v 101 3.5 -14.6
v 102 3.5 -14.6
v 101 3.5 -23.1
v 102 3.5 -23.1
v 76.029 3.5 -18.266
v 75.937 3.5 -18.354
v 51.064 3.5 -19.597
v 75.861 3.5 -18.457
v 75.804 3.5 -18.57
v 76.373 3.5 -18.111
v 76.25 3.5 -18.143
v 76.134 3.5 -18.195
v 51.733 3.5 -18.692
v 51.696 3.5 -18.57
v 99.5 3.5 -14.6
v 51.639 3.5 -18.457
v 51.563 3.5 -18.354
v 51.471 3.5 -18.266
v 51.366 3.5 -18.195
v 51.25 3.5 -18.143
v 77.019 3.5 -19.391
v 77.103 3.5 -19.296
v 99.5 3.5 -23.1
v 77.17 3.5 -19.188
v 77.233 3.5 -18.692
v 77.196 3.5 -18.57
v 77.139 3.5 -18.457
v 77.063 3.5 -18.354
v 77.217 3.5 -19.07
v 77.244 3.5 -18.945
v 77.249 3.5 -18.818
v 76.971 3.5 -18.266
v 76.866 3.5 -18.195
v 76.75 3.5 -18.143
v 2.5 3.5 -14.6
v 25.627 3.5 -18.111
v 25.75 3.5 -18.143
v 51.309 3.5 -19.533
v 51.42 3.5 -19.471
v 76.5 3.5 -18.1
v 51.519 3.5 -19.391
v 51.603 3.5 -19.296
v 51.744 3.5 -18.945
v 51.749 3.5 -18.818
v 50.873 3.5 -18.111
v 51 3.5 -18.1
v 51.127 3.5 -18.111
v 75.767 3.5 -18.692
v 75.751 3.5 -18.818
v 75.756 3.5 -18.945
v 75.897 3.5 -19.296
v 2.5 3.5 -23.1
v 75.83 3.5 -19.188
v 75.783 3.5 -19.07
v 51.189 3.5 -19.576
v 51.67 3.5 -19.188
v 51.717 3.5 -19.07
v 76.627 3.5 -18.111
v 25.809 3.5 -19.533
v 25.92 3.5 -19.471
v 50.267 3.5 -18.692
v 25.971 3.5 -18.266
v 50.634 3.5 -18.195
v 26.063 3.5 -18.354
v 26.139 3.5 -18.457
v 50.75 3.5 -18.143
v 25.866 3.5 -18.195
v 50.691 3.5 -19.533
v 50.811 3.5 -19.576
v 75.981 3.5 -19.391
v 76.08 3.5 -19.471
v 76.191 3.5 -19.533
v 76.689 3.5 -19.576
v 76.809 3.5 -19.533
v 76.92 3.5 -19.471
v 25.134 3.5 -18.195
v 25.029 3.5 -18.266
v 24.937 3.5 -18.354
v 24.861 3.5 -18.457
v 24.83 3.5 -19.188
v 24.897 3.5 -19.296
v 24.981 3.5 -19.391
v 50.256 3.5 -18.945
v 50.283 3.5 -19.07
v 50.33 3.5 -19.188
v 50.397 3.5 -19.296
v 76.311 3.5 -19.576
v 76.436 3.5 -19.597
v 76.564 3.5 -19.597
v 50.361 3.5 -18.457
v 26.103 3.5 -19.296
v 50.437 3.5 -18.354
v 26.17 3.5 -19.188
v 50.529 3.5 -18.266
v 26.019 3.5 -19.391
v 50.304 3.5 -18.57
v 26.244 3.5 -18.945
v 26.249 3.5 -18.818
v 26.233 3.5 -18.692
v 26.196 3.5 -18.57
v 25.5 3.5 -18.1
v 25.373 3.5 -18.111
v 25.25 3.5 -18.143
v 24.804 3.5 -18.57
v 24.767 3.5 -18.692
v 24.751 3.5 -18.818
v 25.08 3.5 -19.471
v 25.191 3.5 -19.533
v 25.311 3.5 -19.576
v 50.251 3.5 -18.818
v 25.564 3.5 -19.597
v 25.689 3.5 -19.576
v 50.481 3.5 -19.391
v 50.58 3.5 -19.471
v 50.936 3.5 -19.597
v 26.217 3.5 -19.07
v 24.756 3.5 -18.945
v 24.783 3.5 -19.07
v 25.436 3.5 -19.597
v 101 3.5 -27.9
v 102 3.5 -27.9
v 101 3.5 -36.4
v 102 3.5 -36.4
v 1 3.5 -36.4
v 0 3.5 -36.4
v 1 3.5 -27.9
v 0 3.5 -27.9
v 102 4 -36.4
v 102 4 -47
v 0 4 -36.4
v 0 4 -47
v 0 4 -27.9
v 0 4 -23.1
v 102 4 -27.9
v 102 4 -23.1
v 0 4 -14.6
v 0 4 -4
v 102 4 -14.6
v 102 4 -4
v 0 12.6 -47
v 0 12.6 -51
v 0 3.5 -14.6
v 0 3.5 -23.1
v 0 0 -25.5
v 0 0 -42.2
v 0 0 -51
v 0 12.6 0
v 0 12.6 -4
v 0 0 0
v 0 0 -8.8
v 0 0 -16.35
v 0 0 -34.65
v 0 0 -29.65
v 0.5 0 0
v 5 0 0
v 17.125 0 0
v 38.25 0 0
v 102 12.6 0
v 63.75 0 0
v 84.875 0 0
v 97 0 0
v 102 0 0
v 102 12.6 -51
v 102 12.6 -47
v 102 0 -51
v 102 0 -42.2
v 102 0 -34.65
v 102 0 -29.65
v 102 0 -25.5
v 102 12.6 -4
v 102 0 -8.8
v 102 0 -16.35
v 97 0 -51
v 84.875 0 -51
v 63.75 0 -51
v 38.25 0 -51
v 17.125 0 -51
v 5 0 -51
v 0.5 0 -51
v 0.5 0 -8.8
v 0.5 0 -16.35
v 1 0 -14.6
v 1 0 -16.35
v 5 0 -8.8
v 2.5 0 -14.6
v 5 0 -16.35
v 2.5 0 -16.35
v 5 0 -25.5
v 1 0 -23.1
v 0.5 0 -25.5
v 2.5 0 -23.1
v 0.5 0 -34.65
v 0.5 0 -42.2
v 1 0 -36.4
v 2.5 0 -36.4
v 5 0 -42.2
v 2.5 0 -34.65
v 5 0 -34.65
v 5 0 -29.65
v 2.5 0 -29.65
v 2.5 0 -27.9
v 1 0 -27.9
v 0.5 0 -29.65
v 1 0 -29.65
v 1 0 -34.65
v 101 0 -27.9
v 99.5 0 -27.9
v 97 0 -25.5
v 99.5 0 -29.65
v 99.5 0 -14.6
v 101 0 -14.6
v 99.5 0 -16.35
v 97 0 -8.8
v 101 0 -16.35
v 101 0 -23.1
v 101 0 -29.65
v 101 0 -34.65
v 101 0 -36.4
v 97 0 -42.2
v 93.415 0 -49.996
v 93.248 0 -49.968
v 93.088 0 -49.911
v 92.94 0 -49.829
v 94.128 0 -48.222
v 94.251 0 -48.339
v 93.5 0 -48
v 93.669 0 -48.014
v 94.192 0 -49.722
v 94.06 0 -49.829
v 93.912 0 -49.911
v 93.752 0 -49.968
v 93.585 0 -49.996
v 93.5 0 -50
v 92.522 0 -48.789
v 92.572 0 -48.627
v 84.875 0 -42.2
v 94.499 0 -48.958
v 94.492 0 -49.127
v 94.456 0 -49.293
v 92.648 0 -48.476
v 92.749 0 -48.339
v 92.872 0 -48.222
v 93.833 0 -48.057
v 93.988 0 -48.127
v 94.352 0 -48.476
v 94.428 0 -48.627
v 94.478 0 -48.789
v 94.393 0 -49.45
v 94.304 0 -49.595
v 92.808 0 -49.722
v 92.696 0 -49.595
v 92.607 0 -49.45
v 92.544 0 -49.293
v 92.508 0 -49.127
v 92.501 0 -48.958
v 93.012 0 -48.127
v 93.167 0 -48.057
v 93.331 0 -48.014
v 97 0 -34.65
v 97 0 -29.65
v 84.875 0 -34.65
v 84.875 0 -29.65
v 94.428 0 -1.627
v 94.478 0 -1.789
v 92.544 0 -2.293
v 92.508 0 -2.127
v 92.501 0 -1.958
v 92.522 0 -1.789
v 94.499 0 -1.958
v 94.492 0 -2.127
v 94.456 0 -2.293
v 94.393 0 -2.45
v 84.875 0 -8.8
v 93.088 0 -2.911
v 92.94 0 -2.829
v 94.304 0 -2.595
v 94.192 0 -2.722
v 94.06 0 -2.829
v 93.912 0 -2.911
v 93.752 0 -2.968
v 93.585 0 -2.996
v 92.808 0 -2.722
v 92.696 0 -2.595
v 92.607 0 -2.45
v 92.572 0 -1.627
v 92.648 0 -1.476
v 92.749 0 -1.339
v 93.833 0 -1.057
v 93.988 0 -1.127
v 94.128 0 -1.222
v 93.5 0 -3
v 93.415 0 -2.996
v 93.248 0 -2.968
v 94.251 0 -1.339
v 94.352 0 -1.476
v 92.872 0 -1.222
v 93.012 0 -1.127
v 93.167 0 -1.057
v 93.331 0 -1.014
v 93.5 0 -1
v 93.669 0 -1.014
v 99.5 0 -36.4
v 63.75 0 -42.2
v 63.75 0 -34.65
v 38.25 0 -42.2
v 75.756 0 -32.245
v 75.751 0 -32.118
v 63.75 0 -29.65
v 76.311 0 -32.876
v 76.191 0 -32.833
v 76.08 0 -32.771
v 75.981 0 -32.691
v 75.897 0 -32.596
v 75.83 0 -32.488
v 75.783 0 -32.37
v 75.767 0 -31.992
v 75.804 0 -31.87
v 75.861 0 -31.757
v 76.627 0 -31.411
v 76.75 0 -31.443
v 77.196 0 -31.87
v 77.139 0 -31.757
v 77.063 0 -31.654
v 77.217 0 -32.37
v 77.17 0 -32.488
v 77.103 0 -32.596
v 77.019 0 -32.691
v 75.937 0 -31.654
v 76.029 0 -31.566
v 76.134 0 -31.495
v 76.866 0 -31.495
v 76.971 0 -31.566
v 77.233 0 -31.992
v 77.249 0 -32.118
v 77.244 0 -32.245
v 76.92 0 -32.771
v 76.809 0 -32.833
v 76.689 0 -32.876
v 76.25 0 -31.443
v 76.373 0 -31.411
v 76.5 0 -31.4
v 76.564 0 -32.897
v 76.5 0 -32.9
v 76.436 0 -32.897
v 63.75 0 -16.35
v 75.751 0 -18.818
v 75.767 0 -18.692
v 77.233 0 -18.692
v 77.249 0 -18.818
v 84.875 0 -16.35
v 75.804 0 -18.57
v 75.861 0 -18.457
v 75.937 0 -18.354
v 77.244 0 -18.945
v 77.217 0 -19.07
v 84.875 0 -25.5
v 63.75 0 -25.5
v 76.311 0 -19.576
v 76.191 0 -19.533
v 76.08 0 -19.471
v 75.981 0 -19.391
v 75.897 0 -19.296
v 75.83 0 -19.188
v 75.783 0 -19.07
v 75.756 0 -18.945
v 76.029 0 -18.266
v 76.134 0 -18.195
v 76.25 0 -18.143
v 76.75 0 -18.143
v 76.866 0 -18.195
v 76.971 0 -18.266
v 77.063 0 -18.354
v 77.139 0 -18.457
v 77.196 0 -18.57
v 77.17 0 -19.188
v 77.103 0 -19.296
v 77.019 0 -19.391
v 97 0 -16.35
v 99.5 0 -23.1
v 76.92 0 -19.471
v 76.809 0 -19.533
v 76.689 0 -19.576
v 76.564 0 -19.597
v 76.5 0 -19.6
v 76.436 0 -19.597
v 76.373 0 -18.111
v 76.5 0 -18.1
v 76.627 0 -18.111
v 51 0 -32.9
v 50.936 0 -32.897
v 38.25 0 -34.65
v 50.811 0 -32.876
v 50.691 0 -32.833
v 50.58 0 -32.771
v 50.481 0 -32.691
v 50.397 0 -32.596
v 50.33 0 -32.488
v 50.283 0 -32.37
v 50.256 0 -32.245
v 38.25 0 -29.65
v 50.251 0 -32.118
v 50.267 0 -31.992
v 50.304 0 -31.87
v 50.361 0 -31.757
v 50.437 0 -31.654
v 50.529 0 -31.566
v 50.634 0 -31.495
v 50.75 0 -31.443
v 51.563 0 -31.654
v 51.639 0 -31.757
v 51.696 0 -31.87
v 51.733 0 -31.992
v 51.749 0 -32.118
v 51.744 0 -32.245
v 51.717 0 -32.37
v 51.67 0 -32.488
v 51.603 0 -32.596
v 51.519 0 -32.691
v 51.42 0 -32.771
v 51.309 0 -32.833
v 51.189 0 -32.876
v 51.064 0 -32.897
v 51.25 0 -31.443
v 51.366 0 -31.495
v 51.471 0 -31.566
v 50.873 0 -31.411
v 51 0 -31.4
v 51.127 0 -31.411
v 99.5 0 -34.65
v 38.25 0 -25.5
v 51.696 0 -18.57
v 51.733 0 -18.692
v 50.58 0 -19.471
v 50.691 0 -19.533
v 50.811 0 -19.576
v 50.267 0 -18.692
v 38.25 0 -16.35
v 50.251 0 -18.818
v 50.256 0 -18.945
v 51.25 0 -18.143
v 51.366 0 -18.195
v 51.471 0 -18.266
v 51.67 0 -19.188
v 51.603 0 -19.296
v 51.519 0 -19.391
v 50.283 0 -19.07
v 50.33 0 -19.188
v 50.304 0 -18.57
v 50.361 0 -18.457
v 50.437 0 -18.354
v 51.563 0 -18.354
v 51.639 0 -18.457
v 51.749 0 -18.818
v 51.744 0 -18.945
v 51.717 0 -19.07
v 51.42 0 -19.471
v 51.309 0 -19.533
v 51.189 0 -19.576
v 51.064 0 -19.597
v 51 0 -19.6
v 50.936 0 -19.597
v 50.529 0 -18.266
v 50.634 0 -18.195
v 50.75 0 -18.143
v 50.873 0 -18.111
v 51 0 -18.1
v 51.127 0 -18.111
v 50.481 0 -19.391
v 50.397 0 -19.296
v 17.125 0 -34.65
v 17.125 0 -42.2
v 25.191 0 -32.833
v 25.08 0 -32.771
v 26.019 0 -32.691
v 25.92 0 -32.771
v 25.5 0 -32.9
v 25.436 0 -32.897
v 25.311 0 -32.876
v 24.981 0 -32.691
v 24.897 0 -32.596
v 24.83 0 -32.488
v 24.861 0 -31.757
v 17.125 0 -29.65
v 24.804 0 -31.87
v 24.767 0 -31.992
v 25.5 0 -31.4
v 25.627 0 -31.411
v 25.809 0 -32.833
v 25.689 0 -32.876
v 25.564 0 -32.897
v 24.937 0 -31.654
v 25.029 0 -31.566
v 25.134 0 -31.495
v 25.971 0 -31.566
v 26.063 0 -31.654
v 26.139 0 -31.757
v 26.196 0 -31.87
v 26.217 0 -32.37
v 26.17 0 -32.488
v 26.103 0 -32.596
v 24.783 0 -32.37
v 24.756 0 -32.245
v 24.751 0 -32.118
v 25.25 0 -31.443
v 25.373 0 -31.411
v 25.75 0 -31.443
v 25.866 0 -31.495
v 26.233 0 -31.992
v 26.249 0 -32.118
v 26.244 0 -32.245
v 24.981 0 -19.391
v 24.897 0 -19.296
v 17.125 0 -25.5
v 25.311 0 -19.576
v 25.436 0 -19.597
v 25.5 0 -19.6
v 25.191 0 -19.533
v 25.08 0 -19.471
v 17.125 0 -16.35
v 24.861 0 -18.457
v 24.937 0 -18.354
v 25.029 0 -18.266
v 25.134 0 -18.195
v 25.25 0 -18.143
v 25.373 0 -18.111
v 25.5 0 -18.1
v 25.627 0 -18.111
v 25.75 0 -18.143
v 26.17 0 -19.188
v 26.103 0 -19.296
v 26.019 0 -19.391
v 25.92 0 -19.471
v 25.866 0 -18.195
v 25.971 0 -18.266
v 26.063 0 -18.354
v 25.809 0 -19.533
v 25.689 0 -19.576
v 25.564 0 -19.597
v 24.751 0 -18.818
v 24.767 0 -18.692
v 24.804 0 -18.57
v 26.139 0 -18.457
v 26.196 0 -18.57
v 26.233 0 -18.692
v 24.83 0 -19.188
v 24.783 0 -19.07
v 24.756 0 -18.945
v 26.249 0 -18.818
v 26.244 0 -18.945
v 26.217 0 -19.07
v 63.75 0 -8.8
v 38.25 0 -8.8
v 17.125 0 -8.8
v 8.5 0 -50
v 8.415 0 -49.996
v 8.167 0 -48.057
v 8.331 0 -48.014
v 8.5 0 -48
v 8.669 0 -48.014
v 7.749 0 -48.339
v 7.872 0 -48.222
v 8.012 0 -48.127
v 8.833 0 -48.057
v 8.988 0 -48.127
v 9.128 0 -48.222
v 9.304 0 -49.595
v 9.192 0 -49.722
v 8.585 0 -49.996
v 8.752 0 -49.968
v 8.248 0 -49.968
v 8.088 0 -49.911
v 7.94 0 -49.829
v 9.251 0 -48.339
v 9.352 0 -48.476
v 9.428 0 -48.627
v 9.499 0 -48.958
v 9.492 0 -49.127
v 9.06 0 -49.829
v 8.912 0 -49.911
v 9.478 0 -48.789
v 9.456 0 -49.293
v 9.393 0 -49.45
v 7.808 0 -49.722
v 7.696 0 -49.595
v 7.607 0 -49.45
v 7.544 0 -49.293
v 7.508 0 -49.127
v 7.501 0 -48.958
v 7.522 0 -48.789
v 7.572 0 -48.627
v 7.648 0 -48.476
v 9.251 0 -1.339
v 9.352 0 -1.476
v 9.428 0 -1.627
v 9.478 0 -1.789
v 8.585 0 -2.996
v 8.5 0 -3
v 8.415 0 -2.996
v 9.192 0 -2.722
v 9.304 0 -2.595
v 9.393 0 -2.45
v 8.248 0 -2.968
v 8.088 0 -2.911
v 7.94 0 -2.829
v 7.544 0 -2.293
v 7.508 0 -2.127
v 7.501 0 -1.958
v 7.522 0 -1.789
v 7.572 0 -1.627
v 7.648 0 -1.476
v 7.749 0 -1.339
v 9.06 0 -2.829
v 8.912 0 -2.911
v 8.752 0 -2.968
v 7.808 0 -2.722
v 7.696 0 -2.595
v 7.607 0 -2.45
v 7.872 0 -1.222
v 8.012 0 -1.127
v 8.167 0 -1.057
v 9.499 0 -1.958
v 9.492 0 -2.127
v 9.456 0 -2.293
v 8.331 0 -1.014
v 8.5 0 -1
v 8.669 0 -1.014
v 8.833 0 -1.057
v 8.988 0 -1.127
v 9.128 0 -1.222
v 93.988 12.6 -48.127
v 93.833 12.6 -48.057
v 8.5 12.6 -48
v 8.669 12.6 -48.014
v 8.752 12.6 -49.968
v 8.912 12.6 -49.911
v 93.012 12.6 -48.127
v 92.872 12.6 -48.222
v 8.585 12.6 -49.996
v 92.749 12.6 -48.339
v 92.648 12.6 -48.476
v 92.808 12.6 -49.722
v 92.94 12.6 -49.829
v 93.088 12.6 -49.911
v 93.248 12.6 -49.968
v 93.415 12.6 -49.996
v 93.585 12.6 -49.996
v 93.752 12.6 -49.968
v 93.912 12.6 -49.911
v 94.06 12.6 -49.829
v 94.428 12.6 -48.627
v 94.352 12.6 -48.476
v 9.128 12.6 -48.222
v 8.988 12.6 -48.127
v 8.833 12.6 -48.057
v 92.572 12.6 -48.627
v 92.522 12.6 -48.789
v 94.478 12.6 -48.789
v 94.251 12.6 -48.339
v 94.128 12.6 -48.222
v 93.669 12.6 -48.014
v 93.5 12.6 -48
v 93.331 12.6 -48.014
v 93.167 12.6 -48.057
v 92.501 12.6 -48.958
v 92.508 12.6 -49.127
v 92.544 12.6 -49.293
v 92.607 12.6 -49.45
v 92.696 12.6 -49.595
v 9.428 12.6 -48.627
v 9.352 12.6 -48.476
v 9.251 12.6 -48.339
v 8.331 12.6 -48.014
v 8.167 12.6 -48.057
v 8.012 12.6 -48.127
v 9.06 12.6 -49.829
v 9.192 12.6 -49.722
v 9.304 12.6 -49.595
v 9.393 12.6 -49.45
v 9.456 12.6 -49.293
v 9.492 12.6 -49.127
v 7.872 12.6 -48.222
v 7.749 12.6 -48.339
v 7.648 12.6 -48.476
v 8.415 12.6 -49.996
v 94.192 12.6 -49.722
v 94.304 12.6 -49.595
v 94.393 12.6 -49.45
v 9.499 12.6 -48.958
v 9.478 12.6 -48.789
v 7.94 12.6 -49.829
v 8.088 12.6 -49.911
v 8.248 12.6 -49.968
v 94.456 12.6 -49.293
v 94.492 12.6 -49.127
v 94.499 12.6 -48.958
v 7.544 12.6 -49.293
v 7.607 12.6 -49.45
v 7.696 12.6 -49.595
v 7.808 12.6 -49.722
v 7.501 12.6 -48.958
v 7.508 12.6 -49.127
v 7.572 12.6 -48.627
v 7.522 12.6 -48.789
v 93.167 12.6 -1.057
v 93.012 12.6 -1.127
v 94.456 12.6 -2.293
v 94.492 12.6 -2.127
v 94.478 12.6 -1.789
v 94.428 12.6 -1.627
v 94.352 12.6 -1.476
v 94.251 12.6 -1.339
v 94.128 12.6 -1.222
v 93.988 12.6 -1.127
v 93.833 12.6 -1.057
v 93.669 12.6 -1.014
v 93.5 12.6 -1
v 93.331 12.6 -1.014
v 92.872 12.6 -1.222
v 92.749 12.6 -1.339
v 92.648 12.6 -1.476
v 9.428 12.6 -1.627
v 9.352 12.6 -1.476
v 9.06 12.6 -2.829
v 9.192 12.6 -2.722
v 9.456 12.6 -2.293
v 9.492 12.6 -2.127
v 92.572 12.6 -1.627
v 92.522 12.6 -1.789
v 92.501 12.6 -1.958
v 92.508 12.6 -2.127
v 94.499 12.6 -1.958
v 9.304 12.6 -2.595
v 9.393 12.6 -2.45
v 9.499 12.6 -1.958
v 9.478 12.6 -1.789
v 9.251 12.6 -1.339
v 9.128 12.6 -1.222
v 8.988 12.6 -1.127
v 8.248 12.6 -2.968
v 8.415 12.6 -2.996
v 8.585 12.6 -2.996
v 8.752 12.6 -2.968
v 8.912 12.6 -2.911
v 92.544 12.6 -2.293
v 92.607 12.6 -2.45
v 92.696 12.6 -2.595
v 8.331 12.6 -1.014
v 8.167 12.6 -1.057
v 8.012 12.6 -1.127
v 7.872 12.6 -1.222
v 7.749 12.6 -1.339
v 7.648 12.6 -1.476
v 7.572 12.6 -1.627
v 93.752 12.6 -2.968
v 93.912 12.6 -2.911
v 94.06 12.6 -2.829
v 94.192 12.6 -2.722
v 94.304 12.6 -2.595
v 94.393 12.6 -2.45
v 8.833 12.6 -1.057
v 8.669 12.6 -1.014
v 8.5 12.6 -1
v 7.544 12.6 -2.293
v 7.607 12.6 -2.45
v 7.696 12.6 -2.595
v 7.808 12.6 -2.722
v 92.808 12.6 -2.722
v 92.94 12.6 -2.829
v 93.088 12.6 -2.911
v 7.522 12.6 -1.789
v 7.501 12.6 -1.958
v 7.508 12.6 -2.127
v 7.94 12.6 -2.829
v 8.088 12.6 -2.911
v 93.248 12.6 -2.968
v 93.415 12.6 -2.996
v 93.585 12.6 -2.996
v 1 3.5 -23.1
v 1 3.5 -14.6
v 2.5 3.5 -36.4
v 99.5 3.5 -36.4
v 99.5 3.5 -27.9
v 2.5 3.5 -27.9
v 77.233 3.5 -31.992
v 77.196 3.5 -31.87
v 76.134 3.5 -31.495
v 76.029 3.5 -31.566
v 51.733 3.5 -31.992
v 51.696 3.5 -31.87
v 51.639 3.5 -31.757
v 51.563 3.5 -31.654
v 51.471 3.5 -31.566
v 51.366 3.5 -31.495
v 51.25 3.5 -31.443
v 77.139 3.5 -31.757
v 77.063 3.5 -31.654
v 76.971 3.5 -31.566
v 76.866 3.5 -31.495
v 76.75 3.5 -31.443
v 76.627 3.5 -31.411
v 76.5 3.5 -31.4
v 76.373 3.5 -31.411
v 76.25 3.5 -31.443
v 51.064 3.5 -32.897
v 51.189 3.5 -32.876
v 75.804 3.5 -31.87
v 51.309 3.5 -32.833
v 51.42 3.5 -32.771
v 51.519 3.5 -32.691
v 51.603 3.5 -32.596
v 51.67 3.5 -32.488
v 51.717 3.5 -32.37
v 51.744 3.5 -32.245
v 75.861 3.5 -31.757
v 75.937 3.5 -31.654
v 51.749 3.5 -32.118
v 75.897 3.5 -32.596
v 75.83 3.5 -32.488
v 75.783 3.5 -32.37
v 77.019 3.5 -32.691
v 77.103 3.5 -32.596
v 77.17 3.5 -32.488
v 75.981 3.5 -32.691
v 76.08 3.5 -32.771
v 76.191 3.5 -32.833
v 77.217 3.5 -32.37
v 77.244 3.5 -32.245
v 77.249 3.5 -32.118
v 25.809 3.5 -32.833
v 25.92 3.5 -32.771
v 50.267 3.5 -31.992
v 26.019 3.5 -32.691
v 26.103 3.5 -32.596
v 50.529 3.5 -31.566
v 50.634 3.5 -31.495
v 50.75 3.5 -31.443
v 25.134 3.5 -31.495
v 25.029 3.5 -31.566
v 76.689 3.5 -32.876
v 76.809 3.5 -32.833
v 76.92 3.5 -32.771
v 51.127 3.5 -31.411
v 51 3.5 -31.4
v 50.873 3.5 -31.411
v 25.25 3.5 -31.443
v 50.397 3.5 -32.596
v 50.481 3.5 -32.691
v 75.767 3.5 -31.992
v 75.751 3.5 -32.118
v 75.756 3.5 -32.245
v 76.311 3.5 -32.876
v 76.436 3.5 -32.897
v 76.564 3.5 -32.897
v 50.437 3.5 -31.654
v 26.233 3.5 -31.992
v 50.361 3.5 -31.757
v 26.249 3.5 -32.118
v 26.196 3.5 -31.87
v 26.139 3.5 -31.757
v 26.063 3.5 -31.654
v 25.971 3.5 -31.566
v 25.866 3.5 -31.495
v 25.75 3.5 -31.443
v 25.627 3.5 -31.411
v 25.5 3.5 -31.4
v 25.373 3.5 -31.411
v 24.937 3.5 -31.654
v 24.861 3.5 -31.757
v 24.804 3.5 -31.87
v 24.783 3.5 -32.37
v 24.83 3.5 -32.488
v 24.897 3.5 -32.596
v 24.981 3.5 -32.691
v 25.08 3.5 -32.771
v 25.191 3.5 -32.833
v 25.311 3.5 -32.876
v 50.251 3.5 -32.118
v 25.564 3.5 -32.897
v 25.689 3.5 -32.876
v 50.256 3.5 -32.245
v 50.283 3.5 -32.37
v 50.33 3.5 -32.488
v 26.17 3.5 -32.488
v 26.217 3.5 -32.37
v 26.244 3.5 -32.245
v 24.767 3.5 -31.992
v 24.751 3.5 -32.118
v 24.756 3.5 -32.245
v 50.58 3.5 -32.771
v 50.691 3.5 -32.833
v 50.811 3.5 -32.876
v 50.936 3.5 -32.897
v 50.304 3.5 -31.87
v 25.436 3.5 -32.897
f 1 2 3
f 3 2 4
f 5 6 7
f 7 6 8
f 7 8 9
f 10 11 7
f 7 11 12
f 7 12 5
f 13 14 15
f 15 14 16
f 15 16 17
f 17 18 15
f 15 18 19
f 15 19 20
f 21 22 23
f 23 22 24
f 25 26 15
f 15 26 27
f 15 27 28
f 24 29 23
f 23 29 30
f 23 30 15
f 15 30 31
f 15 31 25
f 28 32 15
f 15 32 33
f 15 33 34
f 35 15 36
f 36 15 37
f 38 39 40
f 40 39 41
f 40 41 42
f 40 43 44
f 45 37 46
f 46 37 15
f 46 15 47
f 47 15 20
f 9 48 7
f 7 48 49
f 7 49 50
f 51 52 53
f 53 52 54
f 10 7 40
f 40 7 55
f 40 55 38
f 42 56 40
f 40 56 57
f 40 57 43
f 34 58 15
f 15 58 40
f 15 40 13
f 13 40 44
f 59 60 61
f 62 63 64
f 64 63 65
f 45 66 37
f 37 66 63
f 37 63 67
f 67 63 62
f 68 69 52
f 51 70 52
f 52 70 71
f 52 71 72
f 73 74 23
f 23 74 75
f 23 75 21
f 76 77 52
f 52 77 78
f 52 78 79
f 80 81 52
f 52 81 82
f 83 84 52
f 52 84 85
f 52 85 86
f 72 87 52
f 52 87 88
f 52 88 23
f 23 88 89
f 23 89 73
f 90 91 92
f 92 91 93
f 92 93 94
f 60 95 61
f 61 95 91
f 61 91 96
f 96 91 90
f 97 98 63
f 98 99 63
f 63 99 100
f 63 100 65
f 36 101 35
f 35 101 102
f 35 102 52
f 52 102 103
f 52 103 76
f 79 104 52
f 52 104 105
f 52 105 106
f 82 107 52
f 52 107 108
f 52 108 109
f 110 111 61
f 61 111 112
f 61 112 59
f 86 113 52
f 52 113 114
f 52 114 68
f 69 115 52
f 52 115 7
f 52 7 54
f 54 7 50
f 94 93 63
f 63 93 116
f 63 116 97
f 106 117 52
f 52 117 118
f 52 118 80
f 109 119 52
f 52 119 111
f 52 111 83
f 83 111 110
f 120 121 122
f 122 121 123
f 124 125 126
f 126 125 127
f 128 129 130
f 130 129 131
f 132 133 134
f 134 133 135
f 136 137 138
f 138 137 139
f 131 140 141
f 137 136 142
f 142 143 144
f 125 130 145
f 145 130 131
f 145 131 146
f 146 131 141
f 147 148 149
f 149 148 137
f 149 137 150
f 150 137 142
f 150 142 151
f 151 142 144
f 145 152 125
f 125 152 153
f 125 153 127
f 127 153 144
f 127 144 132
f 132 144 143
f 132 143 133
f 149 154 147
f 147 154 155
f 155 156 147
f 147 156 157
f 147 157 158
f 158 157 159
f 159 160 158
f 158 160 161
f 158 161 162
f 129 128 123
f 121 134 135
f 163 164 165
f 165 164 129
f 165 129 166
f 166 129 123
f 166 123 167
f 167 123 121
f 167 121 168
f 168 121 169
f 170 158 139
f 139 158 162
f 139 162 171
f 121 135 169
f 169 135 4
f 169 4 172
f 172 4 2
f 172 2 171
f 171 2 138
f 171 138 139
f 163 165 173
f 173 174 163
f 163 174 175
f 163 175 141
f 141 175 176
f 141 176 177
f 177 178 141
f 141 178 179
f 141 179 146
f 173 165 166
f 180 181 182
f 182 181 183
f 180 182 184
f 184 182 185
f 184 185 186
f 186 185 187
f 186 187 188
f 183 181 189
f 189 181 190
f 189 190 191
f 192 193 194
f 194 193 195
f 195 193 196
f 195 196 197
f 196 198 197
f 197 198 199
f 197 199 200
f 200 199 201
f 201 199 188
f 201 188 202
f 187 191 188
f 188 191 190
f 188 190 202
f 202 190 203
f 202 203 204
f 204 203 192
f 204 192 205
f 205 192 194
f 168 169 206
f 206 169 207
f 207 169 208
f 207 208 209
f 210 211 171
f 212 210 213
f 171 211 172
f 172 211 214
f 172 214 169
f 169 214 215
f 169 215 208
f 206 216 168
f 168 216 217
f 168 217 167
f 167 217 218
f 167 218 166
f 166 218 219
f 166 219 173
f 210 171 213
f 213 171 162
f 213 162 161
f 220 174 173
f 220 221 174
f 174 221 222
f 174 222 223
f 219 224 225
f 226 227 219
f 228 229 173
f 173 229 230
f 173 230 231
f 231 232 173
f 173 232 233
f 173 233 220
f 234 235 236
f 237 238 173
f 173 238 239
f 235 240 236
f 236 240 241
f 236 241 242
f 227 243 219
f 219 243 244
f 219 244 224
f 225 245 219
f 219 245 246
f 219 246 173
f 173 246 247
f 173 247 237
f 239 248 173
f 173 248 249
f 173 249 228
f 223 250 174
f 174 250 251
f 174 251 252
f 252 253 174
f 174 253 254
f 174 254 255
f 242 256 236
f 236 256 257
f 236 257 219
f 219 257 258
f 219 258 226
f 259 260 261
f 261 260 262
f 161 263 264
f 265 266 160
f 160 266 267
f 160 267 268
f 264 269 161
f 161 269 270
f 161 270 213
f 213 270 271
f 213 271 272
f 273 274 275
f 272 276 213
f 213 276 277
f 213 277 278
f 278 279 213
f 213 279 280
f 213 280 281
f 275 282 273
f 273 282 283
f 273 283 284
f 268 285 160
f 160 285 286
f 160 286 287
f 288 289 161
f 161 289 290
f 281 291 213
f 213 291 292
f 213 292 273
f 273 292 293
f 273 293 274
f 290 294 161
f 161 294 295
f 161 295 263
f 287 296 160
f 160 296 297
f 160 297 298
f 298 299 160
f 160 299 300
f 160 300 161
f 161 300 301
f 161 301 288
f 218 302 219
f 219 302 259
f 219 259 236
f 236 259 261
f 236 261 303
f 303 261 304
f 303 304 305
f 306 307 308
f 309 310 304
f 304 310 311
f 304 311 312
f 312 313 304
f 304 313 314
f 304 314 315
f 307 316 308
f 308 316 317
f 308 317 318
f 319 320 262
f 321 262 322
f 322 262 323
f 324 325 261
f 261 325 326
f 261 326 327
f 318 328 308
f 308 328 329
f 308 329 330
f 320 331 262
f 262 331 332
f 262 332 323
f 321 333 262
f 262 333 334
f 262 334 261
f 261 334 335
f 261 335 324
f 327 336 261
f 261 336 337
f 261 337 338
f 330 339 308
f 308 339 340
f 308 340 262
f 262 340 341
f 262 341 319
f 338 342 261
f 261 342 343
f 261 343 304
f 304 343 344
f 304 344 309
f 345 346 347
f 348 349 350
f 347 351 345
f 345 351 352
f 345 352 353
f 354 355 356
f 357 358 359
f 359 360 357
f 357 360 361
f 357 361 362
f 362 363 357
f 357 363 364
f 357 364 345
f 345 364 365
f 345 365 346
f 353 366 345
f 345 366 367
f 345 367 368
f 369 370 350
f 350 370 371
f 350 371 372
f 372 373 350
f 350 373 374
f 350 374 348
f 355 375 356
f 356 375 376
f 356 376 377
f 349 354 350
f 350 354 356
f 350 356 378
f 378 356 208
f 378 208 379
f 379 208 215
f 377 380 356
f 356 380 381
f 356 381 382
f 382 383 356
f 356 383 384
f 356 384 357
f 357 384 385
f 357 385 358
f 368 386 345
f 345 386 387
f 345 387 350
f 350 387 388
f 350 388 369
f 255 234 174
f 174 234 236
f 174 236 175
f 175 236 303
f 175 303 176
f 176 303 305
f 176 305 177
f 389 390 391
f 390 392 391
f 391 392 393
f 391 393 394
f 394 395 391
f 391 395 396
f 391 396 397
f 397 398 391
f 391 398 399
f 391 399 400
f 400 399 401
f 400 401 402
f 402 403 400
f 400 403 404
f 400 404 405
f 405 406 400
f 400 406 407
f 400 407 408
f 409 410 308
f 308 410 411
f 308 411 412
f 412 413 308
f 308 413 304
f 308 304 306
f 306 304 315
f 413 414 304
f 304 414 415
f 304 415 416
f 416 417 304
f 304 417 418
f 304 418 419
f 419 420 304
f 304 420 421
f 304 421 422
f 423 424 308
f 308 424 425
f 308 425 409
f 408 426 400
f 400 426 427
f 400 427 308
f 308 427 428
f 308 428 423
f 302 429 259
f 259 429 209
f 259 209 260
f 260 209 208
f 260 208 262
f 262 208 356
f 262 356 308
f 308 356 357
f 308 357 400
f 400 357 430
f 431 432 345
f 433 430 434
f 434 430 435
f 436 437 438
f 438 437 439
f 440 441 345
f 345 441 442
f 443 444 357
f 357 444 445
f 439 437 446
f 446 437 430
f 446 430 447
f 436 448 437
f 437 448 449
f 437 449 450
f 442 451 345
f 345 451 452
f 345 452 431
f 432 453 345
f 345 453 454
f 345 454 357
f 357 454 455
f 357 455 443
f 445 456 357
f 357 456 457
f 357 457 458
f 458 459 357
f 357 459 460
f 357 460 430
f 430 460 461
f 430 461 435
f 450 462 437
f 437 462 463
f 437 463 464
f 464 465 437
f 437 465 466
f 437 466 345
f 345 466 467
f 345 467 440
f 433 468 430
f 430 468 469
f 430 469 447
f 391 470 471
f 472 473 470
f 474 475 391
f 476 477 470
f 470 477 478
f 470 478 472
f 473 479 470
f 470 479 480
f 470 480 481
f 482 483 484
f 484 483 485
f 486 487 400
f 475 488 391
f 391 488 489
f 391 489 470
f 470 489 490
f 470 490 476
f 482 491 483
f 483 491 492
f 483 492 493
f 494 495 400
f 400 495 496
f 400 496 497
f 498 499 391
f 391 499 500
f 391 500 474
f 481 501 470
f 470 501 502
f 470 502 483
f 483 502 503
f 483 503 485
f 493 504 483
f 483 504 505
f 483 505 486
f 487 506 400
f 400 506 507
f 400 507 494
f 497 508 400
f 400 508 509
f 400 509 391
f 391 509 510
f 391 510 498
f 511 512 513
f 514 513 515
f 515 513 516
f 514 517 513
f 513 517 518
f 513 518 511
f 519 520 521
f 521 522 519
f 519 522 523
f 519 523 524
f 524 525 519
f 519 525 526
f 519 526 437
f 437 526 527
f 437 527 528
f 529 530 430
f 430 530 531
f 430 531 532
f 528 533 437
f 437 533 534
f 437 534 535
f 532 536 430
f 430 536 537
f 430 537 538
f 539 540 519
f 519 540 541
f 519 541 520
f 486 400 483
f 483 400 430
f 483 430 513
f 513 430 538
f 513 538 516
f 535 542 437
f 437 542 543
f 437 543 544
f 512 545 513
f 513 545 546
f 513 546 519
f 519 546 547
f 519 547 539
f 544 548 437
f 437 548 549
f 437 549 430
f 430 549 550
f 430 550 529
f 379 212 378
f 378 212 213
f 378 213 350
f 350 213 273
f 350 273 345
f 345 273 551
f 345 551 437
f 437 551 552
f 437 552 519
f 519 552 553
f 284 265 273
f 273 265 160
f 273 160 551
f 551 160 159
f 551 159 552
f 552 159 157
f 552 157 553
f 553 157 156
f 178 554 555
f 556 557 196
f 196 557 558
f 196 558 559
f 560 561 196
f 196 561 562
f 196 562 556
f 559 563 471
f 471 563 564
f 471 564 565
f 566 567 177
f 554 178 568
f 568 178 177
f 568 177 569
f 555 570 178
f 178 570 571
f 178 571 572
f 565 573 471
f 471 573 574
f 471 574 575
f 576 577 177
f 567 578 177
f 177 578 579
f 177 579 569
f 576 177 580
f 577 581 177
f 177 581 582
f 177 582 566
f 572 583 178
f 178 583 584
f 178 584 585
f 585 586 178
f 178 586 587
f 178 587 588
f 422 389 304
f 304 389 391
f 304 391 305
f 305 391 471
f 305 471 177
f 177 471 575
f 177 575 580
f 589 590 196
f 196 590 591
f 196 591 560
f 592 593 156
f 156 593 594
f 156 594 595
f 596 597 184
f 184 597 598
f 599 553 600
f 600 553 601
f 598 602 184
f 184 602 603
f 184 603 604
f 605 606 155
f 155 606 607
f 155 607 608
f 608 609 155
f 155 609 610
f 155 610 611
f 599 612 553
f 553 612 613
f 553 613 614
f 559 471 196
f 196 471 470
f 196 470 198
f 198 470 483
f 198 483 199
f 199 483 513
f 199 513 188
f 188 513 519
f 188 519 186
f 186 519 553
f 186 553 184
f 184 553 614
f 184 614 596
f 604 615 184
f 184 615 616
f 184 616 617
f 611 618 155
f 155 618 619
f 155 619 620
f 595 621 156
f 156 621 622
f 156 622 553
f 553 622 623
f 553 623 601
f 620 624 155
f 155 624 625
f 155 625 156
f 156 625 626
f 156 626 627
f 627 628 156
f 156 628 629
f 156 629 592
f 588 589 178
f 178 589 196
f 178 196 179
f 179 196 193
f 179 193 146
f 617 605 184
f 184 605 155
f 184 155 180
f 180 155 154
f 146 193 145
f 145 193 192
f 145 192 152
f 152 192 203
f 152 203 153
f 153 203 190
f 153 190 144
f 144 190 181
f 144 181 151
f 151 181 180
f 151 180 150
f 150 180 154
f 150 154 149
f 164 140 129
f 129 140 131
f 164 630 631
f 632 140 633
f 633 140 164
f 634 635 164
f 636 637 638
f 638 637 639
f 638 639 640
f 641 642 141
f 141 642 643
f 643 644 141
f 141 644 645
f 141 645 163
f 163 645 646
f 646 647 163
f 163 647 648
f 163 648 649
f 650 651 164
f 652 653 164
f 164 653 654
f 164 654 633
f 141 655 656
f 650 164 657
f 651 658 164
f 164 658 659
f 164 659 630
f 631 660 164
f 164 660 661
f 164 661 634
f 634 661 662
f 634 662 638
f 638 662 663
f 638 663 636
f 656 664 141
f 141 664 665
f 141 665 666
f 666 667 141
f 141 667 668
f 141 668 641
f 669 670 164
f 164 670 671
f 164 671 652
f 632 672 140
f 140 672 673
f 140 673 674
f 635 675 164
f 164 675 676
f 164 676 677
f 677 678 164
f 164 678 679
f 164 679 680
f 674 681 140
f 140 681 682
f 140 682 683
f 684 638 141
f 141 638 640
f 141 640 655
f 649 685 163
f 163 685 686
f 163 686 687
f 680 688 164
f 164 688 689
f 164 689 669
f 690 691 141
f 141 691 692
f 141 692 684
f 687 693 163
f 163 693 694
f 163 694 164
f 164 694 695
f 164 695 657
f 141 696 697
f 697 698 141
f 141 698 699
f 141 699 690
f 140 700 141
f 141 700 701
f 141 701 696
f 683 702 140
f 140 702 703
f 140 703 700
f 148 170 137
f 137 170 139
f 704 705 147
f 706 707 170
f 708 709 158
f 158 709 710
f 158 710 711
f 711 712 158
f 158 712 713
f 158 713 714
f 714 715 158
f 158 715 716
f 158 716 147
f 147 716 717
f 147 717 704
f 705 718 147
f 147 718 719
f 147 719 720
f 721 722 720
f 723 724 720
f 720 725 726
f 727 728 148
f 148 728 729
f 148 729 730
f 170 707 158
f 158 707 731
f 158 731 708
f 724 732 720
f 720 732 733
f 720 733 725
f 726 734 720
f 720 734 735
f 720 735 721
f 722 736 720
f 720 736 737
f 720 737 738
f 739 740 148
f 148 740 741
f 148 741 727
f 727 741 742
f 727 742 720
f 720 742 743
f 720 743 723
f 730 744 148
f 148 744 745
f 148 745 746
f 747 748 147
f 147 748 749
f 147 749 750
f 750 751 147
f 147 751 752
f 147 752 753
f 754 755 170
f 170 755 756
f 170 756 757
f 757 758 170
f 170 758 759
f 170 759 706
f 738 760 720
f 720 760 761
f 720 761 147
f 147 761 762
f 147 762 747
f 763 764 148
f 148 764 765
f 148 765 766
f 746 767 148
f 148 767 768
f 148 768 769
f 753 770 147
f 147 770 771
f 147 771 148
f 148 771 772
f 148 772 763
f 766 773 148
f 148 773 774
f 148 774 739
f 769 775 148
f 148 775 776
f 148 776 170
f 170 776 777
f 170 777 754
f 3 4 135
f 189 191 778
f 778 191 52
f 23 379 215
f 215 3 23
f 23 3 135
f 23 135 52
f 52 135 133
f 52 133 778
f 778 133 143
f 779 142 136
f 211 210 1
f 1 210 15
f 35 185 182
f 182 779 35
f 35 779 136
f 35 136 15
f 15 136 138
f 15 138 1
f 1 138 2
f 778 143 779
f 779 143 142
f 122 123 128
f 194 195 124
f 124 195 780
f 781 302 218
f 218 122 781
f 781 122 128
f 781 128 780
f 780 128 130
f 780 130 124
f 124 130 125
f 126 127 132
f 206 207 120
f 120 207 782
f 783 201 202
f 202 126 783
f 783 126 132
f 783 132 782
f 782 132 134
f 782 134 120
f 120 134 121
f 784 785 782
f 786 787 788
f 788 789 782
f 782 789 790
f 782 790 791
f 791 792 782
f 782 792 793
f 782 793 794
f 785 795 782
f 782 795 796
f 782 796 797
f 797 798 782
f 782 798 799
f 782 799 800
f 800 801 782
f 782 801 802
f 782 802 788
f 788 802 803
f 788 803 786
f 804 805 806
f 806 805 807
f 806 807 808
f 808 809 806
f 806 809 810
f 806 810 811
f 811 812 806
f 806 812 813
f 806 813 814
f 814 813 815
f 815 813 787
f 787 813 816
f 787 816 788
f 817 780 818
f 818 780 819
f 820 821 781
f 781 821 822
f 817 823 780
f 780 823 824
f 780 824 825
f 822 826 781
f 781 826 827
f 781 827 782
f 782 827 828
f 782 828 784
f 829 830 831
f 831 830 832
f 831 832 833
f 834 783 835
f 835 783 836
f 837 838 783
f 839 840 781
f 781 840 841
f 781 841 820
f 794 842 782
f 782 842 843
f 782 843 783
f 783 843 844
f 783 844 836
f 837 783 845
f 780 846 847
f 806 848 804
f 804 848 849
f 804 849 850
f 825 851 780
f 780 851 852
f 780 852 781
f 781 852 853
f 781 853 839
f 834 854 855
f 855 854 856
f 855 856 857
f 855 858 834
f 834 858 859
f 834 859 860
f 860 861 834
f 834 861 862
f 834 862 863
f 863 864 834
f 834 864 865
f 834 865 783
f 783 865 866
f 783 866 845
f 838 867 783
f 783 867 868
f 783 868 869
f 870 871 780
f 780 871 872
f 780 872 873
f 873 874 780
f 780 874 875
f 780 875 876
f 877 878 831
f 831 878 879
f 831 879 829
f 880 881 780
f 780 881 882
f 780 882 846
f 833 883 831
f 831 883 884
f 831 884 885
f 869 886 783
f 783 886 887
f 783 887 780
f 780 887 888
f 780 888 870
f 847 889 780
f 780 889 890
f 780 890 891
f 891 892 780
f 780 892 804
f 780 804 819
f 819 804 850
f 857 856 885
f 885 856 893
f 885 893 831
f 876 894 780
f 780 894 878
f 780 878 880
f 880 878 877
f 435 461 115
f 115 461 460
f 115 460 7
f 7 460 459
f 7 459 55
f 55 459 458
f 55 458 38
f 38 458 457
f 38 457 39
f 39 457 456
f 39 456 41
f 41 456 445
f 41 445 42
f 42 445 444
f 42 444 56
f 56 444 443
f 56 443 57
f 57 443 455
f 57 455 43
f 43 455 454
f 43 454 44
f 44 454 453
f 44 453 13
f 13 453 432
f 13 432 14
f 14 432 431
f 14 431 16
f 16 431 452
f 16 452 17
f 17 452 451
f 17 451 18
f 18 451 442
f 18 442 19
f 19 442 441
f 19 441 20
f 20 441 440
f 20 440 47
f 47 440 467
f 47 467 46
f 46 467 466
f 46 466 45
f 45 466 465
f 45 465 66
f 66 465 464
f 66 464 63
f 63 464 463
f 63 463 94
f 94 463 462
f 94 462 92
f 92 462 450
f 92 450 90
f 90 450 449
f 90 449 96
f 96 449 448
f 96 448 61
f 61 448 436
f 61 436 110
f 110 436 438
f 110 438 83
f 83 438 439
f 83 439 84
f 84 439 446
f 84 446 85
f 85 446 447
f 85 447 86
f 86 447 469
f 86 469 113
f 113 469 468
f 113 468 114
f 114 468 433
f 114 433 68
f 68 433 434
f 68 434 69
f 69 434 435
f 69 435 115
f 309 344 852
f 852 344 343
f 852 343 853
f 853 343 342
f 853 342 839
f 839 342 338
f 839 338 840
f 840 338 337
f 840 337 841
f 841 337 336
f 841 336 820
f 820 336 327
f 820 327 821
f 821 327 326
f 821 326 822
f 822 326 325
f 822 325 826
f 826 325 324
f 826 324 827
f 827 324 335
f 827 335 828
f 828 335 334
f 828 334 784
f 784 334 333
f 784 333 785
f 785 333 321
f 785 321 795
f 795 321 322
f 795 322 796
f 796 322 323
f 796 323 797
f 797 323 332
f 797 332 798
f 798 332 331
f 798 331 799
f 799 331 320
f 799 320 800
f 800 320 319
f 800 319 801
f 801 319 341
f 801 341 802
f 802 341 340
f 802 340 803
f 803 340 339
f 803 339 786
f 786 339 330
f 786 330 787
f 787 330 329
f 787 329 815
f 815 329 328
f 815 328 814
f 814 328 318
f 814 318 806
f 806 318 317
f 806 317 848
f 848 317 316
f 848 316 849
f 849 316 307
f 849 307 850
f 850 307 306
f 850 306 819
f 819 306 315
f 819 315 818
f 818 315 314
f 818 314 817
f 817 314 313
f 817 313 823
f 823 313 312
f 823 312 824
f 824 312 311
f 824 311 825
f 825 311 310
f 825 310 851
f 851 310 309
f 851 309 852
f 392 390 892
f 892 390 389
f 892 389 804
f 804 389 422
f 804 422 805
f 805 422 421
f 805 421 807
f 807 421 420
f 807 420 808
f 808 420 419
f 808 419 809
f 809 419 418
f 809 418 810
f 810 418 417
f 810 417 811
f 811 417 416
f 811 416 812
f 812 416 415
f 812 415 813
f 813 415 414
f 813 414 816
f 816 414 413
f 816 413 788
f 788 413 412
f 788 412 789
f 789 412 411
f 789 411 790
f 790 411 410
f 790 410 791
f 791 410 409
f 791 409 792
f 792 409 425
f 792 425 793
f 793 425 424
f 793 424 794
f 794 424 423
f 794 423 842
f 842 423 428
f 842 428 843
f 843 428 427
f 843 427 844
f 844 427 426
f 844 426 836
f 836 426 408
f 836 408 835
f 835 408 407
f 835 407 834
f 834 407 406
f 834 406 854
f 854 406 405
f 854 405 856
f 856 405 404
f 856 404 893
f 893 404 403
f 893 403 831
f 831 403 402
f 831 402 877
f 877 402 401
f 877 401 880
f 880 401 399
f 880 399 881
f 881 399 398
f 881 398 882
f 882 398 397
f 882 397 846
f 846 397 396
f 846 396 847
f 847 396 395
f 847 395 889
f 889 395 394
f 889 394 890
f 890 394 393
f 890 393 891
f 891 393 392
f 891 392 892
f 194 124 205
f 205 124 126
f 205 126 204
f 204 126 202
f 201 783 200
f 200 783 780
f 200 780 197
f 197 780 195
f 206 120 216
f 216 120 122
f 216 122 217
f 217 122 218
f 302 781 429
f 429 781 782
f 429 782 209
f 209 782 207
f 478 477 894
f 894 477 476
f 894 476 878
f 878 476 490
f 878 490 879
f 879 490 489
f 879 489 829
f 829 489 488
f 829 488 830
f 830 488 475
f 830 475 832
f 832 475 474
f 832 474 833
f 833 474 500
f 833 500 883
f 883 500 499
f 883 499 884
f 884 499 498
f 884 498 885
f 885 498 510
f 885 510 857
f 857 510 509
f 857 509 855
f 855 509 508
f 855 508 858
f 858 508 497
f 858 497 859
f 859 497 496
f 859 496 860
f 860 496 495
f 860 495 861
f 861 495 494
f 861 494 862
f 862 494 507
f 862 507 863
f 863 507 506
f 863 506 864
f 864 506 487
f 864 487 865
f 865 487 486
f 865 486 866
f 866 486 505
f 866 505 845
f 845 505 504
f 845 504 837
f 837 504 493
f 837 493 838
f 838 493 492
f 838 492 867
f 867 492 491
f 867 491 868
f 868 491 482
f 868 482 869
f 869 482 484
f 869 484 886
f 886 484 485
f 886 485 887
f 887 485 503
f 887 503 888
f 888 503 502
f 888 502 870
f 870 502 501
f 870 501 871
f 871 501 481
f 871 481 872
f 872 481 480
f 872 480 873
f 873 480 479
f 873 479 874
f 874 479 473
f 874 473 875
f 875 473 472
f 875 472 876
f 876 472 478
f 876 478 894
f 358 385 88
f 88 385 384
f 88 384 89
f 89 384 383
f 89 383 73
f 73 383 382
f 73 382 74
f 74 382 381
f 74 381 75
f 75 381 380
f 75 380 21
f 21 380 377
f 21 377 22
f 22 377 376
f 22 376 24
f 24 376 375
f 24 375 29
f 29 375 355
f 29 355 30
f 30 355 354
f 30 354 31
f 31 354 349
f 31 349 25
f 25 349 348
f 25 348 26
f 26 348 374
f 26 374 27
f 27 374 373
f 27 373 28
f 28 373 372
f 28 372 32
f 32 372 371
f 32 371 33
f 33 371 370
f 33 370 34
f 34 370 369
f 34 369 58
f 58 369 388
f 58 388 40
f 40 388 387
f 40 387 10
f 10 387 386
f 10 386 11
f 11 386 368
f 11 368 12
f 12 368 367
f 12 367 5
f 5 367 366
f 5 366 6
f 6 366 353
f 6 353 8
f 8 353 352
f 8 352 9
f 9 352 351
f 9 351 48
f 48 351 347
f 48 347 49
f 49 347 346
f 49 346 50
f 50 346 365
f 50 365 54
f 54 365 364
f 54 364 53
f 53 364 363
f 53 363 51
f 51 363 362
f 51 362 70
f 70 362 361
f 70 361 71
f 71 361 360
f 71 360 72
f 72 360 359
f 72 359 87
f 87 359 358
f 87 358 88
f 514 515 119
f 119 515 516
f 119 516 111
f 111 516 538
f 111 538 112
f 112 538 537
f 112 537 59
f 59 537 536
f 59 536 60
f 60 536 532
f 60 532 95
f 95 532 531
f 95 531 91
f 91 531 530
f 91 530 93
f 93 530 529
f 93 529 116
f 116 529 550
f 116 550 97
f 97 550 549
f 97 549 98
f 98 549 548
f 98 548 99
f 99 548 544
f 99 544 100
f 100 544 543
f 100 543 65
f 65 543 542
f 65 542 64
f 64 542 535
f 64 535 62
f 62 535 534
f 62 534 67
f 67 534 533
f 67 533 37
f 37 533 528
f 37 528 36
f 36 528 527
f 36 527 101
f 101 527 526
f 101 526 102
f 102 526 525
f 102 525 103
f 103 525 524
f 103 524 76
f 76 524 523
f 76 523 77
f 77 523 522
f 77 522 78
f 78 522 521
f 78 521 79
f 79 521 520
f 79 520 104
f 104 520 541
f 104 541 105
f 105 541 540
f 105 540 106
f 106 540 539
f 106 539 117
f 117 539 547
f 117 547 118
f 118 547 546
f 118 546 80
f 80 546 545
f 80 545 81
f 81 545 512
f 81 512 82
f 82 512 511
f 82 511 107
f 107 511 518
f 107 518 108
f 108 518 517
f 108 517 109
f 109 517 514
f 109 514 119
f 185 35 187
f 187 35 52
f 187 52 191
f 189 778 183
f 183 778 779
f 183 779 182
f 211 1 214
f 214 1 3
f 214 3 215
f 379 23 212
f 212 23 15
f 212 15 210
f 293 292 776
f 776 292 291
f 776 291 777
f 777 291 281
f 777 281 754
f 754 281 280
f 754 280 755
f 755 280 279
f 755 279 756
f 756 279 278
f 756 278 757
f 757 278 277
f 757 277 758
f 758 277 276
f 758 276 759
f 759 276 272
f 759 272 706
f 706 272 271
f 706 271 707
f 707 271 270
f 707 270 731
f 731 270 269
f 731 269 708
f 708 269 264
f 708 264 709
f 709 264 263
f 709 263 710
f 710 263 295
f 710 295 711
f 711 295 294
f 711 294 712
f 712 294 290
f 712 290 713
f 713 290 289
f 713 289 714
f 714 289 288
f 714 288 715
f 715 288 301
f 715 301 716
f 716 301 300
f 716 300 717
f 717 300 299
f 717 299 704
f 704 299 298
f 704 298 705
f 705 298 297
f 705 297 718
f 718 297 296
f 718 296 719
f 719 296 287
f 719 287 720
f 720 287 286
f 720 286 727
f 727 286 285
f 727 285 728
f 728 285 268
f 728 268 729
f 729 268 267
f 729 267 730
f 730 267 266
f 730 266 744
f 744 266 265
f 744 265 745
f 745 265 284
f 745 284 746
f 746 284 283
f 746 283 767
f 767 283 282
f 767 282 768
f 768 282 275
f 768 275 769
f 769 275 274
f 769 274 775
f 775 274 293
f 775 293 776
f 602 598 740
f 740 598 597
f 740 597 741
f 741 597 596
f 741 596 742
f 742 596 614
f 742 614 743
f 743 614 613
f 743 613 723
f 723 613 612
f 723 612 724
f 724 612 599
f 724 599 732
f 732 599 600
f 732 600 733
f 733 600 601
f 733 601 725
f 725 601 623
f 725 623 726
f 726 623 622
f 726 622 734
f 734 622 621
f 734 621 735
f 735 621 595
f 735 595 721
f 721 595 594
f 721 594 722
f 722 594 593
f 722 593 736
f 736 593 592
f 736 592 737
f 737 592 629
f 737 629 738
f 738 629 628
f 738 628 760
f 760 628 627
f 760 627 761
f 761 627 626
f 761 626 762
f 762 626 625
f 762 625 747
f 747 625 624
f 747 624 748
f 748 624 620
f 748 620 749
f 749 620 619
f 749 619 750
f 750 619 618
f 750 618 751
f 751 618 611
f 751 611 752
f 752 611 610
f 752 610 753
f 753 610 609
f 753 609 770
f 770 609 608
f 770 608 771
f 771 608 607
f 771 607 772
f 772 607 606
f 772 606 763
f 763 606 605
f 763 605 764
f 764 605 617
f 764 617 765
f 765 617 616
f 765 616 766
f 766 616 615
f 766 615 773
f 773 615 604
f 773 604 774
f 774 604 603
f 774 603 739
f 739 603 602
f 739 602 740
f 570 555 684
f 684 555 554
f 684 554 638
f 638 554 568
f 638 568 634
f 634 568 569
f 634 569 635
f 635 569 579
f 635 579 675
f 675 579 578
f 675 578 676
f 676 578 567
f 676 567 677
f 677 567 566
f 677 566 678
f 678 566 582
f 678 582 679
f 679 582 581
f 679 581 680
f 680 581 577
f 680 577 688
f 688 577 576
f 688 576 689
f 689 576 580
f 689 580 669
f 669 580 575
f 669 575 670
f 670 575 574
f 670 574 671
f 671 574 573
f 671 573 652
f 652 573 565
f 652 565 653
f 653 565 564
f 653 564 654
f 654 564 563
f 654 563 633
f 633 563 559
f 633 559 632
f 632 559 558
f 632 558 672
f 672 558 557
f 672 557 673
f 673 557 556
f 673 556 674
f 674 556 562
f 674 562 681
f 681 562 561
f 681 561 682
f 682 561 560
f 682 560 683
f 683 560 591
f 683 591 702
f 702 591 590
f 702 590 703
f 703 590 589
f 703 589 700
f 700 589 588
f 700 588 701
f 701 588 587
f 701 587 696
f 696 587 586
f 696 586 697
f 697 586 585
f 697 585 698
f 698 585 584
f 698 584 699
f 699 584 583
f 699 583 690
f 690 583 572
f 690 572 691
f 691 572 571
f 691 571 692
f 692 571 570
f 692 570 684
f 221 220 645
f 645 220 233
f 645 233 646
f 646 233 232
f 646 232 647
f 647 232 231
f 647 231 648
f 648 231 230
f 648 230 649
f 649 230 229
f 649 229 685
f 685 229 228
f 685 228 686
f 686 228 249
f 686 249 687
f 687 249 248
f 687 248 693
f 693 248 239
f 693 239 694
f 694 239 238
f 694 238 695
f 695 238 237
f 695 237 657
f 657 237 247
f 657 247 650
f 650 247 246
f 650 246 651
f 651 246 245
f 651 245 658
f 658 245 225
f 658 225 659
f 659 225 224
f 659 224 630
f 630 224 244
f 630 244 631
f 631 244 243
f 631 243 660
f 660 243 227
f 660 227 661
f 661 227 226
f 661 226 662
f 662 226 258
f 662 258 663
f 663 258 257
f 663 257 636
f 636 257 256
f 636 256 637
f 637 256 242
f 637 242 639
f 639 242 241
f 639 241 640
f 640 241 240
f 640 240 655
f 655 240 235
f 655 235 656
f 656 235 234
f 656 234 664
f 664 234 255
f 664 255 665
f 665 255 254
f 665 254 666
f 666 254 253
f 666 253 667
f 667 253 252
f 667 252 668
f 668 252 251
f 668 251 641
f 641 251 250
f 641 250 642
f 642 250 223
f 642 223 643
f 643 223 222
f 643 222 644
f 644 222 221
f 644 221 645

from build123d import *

# Parameters (mm, degrees)
SKETCH1_W           = 102
SKETCH1_H           = 51
BOSS_EXTRUDE2_DEPTH = 4
SKETCH2_W           = 102
SKETCH2_H           = 4
BOSS_EXTRUDE3_DEPTH = 8.6
SKETCH3_W           = 102
SKETCH3_H           = 8.5
CUT_EXTRUDE2_DEPTH  = 0.5
SKETCH4_R           = 0.75
SKETCH4_W           = 1.5
SKETCH4_H           = 8.5
CUT_EXTRUDE4_DEPTH  = 10
SKETCH6_R           = 1
CUT_EXTRUDE5_DEPTH  = 15


with BuildPart() as part:
    # Sketch1 → Boss-Extrude2 (new body)
    with BuildSketch(Plane(origin=(0, 0, 0), x_dir=(1, 0, 0), z_dir=(0, 1, 0))):
        with Locations((51, 25.5)):
            Rectangle(SKETCH1_W, SKETCH1_H)
    extrude(amount=BOSS_EXTRUDE2_DEPTH)

    # Sketch2 → Boss-Extrude3 (add)
    with BuildSketch(Plane(origin=(0, 4, 0), x_dir=(1, 0, 0), z_dir=(0, 1, 0))):
        with Locations((51, 49)):
            Rectangle(SKETCH2_W, SKETCH2_H)
        with Locations((51, 2)):
            Rectangle(SKETCH2_W, SKETCH2_H)
    extrude(amount=BOSS_EXTRUDE3_DEPTH)

    # Sketch3 → Cut-Extrude2 (cut)
    with BuildSketch(Plane(origin=(0, 4, 0), x_dir=(1, 0, 0), z_dir=(0, 1, 0))):
        with Locations((51, 18.85)):
            Rectangle(SKETCH3_W, SKETCH3_H)
        with Locations((51, 32.15)):
            Rectangle(SKETCH3_W, SKETCH3_H)
    extrude(amount=-CUT_EXTRUDE2_DEPTH, mode=Mode.SUBTRACT)

    # Sketch4 → Cut-Extrude4 (cut)
    with BuildSketch(Plane(origin=(0, 3.5, 0), x_dir=(1, 0, 0), z_dir=(0, 1, 0))):
        with Locations(Location((51, 18.85, 0), (0, 0, 270))):
            Circle(SKETCH4_R)
        with Locations(Location((76.5, 18.85, 0), (0, 0, 270))):
            Circle(SKETCH4_R)
        with Locations(Location((25.5, 18.85, 0), (0, 0, 270))):
            Circle(SKETCH4_R)
        with Locations(Location((76.5, 32.15, 0), (0, 0, 270))):
            Circle(SKETCH4_R)
        with Locations(Location((51, 32.15, 0), (0, 0, 270))):
            Circle(SKETCH4_R)
        with Locations(Location((25.5, 32.15, 0), (0, 0, 270))):
            Circle(SKETCH4_R)
        with Locations((100.25, 18.85)):
            Rectangle(SKETCH4_W, SKETCH4_H)
        with Locations((100.25, 32.15)):
            Rectangle(SKETCH4_W, SKETCH4_H)
        with Locations((1.75, 18.85)):
            Rectangle(SKETCH4_W, SKETCH4_H)
        with Locations((1.75, 32.15)):
            Rectangle(SKETCH4_W, SKETCH4_H)
    extrude(amount=-CUT_EXTRUDE4_DEPTH, mode=Mode.SUBTRACT)

    # Sketch6 → Cut-Extrude5 (cut)
    with BuildSketch(Plane(origin=(0, 12.6, 0), x_dir=(1, 0, 0), z_dir=(0, 1, 0))):
        with Locations(Location((93.5, 2, 0), (0, 0, 270))):
            Circle(SKETCH6_R)
        with Locations(Location((8.5, 2, 0), (0, 0, 270))):
            Circle(SKETCH6_R)
        with Locations(Location((93.5, 49, 0), (0, 0, 270))):
            Circle(SKETCH6_R)
        with Locations(Location((8.5, 49, 0), (0, 0, 270))):
            Circle(SKETCH6_R)
    extrude(amount=-CUT_EXTRUDE5_DEPTH, mode=Mode.SUBTRACT)


solid = part.part
